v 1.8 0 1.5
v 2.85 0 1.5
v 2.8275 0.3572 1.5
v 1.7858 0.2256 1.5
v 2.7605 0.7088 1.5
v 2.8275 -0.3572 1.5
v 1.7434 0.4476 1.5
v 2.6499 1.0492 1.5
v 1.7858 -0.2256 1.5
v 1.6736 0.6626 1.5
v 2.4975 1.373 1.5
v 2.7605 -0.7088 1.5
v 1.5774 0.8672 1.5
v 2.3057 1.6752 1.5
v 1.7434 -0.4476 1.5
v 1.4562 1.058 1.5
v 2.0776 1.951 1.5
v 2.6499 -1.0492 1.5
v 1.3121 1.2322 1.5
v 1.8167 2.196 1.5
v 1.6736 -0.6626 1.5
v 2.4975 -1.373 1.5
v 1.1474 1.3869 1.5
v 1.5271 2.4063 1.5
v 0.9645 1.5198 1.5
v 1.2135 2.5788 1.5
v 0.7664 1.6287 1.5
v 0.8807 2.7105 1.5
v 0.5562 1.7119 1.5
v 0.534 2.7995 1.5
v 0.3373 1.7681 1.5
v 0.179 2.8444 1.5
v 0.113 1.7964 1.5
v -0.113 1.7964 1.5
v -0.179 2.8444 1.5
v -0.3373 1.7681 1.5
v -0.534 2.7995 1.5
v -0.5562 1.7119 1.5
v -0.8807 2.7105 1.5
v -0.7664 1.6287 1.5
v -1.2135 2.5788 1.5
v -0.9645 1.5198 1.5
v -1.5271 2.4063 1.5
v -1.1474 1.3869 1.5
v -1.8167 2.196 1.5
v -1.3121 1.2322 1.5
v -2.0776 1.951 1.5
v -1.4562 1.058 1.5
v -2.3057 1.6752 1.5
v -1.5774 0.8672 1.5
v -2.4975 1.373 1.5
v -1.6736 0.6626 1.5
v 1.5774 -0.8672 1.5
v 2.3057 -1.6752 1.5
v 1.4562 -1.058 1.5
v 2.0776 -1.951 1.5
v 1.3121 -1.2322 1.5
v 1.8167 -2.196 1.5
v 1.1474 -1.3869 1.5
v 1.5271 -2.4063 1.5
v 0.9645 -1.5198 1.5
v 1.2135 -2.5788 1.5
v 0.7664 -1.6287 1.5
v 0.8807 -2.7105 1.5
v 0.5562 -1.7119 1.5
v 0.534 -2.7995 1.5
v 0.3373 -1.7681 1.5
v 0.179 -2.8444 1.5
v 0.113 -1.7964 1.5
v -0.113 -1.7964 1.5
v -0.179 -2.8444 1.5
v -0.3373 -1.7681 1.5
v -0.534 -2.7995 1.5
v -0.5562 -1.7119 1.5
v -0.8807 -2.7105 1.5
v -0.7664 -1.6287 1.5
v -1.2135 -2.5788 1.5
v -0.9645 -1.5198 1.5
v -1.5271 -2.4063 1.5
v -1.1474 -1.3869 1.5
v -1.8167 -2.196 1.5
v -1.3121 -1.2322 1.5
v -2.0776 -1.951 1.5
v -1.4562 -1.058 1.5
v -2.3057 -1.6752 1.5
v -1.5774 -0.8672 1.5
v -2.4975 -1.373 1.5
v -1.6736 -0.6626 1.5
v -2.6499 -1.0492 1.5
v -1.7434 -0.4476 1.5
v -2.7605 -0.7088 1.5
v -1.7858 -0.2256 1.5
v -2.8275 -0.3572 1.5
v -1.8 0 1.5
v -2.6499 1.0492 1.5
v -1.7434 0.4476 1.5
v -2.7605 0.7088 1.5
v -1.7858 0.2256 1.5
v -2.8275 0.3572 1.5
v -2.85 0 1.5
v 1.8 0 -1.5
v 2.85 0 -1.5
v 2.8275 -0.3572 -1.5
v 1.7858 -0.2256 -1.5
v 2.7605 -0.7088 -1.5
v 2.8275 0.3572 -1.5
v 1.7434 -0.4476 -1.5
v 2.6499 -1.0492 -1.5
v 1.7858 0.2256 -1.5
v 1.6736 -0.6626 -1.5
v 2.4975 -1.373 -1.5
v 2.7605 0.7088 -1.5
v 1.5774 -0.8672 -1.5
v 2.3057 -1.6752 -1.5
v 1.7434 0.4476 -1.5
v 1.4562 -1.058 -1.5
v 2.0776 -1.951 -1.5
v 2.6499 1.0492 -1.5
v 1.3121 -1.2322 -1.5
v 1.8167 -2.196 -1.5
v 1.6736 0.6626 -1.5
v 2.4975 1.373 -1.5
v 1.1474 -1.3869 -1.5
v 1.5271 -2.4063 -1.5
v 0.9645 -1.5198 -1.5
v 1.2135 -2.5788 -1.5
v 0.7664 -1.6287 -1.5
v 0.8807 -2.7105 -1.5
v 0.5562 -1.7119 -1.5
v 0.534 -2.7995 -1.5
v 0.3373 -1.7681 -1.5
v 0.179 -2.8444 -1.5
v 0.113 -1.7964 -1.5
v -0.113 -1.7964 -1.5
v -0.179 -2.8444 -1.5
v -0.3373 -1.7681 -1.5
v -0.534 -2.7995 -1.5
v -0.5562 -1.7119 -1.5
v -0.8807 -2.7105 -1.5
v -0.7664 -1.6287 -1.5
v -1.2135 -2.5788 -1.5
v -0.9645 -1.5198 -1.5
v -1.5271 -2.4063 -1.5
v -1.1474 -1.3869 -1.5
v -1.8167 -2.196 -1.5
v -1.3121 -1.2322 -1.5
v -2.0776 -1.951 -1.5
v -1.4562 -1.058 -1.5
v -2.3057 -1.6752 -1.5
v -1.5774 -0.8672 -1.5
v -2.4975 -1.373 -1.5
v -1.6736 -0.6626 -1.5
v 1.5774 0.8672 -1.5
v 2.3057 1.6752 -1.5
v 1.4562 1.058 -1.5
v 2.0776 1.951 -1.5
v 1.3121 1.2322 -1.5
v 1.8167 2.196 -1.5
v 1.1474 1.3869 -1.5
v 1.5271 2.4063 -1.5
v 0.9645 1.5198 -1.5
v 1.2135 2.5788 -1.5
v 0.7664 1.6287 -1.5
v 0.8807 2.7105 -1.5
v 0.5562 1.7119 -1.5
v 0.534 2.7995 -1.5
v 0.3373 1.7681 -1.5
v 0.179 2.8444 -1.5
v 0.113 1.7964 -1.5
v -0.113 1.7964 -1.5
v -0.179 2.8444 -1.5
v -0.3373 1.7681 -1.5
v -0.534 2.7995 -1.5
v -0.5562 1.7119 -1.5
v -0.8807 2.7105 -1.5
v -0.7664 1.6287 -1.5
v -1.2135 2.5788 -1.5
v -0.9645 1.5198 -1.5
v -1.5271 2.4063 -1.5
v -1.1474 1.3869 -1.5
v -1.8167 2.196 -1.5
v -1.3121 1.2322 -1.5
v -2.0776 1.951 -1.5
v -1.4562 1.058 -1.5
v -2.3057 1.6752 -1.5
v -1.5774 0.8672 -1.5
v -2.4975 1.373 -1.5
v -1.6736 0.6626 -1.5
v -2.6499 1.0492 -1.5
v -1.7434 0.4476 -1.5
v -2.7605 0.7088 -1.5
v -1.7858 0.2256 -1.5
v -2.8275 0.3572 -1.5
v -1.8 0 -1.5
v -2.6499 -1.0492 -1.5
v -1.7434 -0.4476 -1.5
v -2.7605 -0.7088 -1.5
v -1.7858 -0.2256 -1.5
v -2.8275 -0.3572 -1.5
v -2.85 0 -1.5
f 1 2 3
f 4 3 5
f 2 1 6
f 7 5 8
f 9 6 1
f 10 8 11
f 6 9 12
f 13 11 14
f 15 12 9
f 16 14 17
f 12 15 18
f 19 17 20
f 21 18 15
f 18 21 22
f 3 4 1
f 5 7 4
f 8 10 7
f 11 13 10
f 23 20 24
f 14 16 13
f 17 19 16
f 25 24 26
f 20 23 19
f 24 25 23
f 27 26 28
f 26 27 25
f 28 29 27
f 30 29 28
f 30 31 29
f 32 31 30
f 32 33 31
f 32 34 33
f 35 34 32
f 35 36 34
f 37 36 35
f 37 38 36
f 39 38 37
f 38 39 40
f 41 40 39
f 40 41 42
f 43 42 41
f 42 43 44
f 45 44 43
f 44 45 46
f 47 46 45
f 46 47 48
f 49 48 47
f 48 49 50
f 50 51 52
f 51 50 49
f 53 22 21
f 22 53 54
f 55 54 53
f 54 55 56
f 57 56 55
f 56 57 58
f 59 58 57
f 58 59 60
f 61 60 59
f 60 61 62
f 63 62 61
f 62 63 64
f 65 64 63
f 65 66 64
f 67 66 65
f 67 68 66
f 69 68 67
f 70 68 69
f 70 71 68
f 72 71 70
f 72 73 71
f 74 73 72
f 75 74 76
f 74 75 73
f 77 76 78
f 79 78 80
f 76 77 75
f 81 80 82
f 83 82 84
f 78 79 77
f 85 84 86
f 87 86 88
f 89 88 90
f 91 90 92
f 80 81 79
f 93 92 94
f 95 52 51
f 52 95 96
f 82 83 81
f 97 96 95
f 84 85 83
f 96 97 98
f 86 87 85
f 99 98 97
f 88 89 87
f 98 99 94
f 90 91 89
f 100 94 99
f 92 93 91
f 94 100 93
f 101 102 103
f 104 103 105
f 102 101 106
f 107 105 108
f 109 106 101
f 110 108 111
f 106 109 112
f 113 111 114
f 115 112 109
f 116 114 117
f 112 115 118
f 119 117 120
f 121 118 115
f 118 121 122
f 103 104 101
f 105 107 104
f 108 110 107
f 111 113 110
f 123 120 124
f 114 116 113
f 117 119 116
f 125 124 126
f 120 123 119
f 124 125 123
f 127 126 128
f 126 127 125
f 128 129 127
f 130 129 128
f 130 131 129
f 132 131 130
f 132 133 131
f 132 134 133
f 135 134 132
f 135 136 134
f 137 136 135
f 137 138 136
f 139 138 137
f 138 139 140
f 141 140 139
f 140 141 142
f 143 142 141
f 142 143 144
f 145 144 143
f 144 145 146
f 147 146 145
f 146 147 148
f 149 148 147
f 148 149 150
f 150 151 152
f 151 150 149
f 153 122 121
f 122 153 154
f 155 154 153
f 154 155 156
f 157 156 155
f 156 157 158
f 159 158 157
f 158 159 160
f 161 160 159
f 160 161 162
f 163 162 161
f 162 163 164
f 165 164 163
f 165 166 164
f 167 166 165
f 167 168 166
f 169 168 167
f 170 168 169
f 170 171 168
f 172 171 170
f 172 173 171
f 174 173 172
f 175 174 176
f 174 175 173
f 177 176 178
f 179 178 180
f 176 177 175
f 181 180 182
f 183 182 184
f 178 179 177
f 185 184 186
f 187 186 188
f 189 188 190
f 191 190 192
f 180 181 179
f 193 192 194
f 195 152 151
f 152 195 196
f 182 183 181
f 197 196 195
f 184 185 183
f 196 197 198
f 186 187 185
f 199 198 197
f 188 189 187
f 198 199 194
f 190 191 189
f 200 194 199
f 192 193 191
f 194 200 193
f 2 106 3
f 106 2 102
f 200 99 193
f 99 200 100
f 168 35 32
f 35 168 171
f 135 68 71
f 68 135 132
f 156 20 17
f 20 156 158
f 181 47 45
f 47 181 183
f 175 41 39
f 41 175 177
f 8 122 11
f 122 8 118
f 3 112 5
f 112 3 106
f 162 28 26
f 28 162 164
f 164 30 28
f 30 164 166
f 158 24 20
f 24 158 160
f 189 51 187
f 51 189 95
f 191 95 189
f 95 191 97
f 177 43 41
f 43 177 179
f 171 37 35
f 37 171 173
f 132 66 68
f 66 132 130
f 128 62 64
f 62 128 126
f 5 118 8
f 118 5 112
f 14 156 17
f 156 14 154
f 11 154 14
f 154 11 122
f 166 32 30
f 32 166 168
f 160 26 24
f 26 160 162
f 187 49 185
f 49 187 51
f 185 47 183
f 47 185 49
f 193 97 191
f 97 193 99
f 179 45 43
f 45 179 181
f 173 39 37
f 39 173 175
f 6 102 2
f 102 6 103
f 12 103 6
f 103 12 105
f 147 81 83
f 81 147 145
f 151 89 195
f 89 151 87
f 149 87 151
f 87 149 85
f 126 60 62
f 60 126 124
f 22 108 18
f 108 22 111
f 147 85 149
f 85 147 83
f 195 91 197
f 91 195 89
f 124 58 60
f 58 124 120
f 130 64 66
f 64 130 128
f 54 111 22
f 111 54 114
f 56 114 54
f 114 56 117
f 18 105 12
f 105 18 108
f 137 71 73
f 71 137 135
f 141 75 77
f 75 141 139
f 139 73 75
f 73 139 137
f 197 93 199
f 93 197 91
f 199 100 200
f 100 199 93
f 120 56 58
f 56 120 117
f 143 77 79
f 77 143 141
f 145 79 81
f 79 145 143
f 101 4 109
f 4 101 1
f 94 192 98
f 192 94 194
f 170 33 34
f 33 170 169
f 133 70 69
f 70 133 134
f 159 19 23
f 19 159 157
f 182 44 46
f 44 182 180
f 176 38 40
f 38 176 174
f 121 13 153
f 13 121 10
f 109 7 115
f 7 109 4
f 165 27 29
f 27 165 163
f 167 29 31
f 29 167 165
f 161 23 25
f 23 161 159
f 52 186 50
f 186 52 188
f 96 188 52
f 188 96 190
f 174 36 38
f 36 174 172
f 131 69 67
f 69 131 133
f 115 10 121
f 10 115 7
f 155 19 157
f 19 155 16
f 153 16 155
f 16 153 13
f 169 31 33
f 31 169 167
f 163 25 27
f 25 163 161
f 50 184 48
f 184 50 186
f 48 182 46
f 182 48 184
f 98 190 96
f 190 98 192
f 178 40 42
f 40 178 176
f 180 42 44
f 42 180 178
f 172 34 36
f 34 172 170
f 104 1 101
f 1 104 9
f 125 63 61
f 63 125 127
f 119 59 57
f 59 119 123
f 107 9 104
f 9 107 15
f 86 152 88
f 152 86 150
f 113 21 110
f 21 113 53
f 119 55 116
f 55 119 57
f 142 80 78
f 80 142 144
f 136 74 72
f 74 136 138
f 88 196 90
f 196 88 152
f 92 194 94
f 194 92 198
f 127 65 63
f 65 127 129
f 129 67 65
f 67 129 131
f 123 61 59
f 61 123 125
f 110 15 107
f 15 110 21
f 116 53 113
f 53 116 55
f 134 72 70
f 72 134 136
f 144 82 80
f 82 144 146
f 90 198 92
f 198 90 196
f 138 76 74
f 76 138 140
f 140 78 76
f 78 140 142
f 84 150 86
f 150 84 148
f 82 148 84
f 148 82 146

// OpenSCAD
$fn = 50;


difference() {
	union() {
		translate(v = [0, 0, -1.5000000000]) {
			rotate(a = [0, 0, 0]) {
				cylinder(h = 3, r = 1.0000000000);
			}
		}
		translate(v = [0, 0, -1.5000000000]) {
			rotate(a = [0, 0, 0]) {
				cylinder(h = 3, r = 2.8500000000);
			}
		}
	}
	union() {
		translate(v = [0, 0, -125.0000000000]) {
			rotate(a = [0, 0, 0]) {
				cylinder(h = 250, r = 1.8000000000);
			}
		}
	}
}
